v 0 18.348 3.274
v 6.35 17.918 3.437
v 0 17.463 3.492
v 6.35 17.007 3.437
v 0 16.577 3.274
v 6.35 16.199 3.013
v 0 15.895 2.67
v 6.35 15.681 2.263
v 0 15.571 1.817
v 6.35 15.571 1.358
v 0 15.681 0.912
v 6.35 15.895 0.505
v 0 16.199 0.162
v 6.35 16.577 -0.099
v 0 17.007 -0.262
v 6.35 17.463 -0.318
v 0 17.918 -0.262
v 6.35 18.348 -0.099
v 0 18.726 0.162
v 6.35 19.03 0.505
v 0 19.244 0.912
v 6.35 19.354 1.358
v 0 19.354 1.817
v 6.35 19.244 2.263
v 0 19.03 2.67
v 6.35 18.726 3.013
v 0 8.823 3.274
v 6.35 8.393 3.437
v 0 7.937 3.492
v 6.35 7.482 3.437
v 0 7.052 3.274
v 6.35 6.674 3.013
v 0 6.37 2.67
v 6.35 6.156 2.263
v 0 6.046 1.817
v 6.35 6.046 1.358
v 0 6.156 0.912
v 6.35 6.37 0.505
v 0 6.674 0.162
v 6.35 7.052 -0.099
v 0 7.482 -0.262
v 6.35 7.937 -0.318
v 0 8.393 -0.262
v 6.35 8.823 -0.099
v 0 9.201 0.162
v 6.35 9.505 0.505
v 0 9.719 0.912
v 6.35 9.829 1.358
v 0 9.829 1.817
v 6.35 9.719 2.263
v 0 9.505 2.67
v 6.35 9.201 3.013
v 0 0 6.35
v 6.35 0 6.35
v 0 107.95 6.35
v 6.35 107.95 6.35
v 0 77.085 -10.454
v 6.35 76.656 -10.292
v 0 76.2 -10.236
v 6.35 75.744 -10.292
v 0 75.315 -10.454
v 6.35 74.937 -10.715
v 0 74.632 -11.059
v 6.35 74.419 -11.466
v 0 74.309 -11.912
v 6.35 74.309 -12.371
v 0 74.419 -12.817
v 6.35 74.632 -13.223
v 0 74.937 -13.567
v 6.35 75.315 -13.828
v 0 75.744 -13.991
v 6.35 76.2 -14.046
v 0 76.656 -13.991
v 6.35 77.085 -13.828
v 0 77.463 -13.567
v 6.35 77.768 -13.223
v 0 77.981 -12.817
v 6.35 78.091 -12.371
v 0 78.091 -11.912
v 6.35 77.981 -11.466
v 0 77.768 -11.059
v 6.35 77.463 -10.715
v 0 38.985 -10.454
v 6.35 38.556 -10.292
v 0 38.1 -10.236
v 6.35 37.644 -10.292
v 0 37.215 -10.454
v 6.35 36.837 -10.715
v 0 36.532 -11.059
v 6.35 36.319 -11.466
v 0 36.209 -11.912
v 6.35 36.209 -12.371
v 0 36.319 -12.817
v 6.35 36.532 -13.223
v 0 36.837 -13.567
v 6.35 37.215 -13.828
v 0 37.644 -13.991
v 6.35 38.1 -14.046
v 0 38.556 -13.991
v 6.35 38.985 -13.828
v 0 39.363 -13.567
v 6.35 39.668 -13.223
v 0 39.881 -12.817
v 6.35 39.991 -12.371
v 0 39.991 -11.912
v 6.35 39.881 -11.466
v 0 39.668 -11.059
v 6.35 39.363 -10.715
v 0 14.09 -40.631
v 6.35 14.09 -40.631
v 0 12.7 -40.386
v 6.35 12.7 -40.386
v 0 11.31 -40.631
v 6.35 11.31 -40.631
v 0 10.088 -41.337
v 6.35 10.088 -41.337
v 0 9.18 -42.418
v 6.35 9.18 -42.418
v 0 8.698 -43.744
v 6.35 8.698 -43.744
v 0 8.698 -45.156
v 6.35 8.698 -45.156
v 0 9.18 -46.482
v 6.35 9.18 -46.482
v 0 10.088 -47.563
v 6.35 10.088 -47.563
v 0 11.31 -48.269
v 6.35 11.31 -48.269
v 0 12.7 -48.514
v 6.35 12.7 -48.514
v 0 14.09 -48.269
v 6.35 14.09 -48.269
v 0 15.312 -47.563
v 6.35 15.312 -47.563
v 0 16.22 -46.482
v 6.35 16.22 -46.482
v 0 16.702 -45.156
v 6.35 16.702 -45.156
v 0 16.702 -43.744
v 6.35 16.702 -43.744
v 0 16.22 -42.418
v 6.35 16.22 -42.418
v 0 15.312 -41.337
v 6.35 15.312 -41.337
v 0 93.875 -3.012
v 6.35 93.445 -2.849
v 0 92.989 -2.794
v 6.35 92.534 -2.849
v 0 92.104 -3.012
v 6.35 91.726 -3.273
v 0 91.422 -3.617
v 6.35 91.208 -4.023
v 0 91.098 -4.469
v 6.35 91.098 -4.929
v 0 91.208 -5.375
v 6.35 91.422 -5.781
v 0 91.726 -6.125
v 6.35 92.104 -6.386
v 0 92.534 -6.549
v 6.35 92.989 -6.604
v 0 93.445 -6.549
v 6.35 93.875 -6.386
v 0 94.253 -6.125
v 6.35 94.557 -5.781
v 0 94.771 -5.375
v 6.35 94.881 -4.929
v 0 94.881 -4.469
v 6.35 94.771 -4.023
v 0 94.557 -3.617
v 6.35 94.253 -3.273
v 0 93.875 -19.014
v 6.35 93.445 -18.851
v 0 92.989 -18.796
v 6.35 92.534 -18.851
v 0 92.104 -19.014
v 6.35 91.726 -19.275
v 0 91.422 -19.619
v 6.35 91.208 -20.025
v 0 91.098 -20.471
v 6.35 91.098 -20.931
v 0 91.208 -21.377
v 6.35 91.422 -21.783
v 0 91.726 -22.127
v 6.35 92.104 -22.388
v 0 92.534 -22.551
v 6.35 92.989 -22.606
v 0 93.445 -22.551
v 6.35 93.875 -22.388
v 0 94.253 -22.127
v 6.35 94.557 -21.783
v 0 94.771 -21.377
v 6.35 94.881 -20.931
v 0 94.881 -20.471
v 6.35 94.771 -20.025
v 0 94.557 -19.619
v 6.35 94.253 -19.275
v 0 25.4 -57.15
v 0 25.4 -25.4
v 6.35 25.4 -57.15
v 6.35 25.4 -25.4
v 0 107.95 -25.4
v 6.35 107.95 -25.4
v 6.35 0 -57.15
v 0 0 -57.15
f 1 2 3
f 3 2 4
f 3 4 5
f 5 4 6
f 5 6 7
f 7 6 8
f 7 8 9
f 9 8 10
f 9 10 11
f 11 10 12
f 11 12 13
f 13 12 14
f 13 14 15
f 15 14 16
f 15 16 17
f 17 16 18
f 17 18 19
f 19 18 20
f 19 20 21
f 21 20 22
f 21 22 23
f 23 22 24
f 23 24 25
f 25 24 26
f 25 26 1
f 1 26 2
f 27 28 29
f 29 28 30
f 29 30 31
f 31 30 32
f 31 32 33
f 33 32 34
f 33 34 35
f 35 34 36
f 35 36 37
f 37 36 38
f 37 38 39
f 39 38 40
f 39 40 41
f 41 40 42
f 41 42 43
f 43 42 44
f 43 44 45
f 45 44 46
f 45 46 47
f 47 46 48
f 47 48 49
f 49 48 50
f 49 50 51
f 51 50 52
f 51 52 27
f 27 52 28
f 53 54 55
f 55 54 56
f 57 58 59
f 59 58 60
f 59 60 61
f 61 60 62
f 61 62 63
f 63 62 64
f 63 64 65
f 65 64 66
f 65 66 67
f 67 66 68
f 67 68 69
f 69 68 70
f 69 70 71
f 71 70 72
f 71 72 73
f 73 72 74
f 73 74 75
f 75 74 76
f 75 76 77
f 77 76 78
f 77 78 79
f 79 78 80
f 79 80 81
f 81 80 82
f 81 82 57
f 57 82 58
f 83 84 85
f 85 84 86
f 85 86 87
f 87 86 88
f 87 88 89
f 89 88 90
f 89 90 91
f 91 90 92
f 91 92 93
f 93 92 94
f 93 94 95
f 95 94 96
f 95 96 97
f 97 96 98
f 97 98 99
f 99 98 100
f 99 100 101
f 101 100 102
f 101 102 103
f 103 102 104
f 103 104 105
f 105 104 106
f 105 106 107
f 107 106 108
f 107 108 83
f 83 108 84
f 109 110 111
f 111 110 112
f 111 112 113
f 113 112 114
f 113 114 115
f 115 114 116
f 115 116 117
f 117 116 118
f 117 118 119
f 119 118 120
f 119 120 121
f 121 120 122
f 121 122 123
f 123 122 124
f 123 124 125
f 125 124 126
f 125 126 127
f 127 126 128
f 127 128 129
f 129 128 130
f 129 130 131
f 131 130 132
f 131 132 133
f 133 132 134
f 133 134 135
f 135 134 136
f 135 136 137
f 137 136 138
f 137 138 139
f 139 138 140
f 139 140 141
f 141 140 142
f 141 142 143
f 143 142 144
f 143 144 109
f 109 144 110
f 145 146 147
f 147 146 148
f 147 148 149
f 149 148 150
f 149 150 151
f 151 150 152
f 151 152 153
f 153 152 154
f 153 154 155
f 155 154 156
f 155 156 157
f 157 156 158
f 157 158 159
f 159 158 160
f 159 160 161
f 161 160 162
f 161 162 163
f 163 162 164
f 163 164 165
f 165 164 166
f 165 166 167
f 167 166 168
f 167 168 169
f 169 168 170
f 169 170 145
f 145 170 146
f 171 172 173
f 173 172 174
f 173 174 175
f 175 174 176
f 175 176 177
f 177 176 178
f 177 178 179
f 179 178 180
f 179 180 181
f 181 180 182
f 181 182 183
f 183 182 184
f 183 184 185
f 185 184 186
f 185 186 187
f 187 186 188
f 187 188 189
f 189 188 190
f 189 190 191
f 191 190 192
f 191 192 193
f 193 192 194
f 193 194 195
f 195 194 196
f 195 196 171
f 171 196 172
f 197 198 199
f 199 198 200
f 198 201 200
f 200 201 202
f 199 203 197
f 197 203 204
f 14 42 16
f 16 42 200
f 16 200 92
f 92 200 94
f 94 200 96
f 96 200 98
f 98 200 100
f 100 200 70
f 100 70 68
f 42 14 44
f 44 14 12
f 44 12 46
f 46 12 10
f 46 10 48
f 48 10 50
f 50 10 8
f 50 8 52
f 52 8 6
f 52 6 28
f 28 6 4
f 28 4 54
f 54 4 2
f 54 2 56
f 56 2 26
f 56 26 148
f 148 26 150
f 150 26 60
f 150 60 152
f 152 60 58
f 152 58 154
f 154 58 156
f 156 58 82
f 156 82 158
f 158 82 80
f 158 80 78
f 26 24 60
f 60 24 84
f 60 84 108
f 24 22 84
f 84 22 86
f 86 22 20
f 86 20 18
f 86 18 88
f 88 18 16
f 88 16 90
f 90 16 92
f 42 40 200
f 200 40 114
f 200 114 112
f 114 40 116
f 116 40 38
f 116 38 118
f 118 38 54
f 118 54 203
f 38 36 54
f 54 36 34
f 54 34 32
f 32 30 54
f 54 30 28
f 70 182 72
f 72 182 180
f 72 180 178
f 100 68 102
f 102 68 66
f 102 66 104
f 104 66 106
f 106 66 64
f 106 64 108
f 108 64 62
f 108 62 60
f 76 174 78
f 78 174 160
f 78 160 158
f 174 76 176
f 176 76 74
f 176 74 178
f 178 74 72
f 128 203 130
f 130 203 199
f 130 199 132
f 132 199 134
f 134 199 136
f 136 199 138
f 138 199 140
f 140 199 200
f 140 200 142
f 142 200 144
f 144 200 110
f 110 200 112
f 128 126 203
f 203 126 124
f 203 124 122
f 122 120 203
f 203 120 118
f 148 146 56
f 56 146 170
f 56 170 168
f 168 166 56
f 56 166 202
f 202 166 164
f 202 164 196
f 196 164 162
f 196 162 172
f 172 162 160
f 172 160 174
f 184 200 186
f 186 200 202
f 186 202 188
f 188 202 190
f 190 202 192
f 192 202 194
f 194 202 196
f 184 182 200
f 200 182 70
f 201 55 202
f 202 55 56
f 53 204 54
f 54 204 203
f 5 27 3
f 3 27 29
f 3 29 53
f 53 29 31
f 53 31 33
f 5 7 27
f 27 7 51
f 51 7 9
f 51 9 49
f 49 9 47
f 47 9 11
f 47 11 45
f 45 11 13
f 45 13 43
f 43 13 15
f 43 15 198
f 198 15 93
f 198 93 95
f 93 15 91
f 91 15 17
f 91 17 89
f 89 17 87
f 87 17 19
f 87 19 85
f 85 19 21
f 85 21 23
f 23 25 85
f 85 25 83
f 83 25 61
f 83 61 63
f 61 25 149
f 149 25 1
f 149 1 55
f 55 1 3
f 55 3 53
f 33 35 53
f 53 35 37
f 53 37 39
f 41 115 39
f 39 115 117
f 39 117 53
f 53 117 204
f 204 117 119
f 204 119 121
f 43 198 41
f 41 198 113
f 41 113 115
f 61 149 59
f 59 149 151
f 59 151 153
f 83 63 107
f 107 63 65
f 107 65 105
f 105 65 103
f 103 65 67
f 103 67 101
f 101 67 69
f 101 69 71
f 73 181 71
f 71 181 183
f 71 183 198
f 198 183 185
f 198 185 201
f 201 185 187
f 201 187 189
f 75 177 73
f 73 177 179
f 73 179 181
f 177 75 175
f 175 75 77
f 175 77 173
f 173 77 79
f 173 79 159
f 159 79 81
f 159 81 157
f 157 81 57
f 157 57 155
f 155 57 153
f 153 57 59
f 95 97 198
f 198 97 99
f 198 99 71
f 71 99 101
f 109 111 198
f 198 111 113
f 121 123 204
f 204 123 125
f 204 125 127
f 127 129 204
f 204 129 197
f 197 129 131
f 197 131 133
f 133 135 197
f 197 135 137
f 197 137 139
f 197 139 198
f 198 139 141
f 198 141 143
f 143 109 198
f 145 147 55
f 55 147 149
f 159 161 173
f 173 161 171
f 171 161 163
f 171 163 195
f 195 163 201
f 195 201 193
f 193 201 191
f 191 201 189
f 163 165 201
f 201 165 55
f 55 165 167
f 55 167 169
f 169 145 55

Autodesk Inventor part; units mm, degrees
ref_plane "YZ Plane" through (0, 0, 0) normal (1, 0, 0) x (0, 1, 0)
ref_plane "XZ Plane" through (0, 0, 0) normal (0, 1, 0) x (-1, 0, 0)
ref_plane "XY Plane" through (0, 0, 0) normal (0, 0, 1) x (1, 0, 0)
sketch "Sketch1" plane through (0, 0, 0) normal (1, 0, 0) x (0, 1, 0)
  line L0 (0, 0) -> (107.95, 0)
  line L1 (107.95, 0) -> (107.95, -57.15)
  line L2 (107.95, -57.15) -> (0, -57.15)
  line L3 (0, -57.15) -> (0, 0)
  line L4 (107.95, -57.15) -> (25.4, -57.15)
  line L5 (25.4, -57.15) -> (25.4, -25.4)
  line L6 (25.4, -25.4) -> (107.95, -25.4)
  line L7 (107.95, -25.4) -> (107.95, -57.15)
  dimension "d0" = 107.95
  dimension "d1" = 57.15
  dimension "d2" = 82.55
  dimension "d3" = 31.75
extrude "Extrusion1" add sketch "Sketch1" along normal blind 6.35 contours L0 L1 L6 L5 L2 L3
sketch "Sketch2" plane through (6.35, 0, 0) normal (1, 0, 0) x (0, 0, -1)
  line L0 (0, 0) -> (57.15, 0) projected
  line L1 (57.15, 25.4) -> (25.4, 25.4) projected
  line L2 (25.4, 25.4) -> (25.4, 107.95) projected
  line L3 (25.4, 107.95) -> (0, 107.95) projected
  line L4 (0, 107.95) -> (0, 0) projected
  line L5 (0, 0) -> (57.15, 0) projected
  line L6 (57.15, 0) -> (57.15, 25.4) projected
  point P0 (4.699, 92.9894)
  point P1 (20.701, 92.9894)
  dimension "d6" = 92.9894
  dimension "d7" = 92.9894
  dimension "d8" = 16.002
  dimension "d9" = 25.4
  dimension "d10" = 4.699
hole "Hole1" at (6.35, 92.9894, -4.699) at (6.35, 92.9894, -20.701) direction (-1, 0, 0) diameter 3.81 end through all
sketch "Sketch3" plane through (6.35, 0, 0) normal (1, 0, 0) x (0, 0, -1)
  line L0 (57.15, 25.4) -> (25.4, 25.4) projected
  line L1 (57.15, 0) -> (57.15, 25.4) projected
  point P0 (0, 0)
  point P1 (44.45, 12.7)
  dimension "d18" = 12.7
  dimension "d19" = 12.7
hole "Hole2" at (6.35, 12.7, -44.45) direction (-1, 0, 0) diameter 8.128 end through all
sketch "Sketch4" plane through (6.35, 0, 0) normal (1, 0, 0) x (0, 0, -1)
  line L0 (0, 107.95) -> (0, 0) projected
  line L1 (0, 0) -> (57.15, 0) projected
  line L2 (25.4, 25.4) -> (25.4, 107.95) projected
  point P0 (12.1412, 76.2)
  point P1 (12.1412, 38.1)
  dimension "d29" = 38.1
  dimension "d30" = 76.2
  dimension "d38" = 13.2588
  dimension "d39" = 13.2588
hole "Hole3" at (6.35, 76.2, -12.1412) at (6.35, 38.1, -12.1412) direction (-1, 0, 0) diameter 3.81 depth 10.9728 tip angle 118
sketch "Sketch5" plane through (0, 0, 0) normal (0, 0, 1) x (1, 0, 0)
  line L0 (0, 107.95) -> (0, 0) projected
  line L1 (0, 0) -> (6.35, 0) projected
  line L2 (6.35, 107.95) -> (6.35, 0) projected
  line L3 (0, 107.95) -> (6.35, 107.95) projected
extrude "Extrusion2" add sketch "Sketch5" along normal blind 6.35
sketch "Sketch6" plane through (6.35, 0, 0) normal (1, 0, 0) x (0, 0, -1)
  line L0 (-6.35, 0) -> (-6.35, 107.95) projected
  line L1 (57.15, 0) -> (-6.35, 0) projected
  point P0 (0, 0)
  point P1 (-1.5875, 17.4625)
  point P2 (-1.5875, 7.9375)
  dimension "d42" = 4.7625
  dimension "d43" = 4.7625
  dimension "d44" = 9.525
  dimension "d45" = 7.9375
hole "Hole4" at (6.35, 17.4625, 1.5875) at (6.35, 7.9375, 1.5875) direction (-1, 0, 0) diameter 3.81 end through all
equation "\"d7\" = d6"
equation "\"d10\" = -0.5 * d8 + 0.5 * d9"
equation "\"d39\" = d38"
equation "\"d43\" = d42"
properties part number "PaddleCollection2.1ServoSupport" material "Nylon 6/6"
